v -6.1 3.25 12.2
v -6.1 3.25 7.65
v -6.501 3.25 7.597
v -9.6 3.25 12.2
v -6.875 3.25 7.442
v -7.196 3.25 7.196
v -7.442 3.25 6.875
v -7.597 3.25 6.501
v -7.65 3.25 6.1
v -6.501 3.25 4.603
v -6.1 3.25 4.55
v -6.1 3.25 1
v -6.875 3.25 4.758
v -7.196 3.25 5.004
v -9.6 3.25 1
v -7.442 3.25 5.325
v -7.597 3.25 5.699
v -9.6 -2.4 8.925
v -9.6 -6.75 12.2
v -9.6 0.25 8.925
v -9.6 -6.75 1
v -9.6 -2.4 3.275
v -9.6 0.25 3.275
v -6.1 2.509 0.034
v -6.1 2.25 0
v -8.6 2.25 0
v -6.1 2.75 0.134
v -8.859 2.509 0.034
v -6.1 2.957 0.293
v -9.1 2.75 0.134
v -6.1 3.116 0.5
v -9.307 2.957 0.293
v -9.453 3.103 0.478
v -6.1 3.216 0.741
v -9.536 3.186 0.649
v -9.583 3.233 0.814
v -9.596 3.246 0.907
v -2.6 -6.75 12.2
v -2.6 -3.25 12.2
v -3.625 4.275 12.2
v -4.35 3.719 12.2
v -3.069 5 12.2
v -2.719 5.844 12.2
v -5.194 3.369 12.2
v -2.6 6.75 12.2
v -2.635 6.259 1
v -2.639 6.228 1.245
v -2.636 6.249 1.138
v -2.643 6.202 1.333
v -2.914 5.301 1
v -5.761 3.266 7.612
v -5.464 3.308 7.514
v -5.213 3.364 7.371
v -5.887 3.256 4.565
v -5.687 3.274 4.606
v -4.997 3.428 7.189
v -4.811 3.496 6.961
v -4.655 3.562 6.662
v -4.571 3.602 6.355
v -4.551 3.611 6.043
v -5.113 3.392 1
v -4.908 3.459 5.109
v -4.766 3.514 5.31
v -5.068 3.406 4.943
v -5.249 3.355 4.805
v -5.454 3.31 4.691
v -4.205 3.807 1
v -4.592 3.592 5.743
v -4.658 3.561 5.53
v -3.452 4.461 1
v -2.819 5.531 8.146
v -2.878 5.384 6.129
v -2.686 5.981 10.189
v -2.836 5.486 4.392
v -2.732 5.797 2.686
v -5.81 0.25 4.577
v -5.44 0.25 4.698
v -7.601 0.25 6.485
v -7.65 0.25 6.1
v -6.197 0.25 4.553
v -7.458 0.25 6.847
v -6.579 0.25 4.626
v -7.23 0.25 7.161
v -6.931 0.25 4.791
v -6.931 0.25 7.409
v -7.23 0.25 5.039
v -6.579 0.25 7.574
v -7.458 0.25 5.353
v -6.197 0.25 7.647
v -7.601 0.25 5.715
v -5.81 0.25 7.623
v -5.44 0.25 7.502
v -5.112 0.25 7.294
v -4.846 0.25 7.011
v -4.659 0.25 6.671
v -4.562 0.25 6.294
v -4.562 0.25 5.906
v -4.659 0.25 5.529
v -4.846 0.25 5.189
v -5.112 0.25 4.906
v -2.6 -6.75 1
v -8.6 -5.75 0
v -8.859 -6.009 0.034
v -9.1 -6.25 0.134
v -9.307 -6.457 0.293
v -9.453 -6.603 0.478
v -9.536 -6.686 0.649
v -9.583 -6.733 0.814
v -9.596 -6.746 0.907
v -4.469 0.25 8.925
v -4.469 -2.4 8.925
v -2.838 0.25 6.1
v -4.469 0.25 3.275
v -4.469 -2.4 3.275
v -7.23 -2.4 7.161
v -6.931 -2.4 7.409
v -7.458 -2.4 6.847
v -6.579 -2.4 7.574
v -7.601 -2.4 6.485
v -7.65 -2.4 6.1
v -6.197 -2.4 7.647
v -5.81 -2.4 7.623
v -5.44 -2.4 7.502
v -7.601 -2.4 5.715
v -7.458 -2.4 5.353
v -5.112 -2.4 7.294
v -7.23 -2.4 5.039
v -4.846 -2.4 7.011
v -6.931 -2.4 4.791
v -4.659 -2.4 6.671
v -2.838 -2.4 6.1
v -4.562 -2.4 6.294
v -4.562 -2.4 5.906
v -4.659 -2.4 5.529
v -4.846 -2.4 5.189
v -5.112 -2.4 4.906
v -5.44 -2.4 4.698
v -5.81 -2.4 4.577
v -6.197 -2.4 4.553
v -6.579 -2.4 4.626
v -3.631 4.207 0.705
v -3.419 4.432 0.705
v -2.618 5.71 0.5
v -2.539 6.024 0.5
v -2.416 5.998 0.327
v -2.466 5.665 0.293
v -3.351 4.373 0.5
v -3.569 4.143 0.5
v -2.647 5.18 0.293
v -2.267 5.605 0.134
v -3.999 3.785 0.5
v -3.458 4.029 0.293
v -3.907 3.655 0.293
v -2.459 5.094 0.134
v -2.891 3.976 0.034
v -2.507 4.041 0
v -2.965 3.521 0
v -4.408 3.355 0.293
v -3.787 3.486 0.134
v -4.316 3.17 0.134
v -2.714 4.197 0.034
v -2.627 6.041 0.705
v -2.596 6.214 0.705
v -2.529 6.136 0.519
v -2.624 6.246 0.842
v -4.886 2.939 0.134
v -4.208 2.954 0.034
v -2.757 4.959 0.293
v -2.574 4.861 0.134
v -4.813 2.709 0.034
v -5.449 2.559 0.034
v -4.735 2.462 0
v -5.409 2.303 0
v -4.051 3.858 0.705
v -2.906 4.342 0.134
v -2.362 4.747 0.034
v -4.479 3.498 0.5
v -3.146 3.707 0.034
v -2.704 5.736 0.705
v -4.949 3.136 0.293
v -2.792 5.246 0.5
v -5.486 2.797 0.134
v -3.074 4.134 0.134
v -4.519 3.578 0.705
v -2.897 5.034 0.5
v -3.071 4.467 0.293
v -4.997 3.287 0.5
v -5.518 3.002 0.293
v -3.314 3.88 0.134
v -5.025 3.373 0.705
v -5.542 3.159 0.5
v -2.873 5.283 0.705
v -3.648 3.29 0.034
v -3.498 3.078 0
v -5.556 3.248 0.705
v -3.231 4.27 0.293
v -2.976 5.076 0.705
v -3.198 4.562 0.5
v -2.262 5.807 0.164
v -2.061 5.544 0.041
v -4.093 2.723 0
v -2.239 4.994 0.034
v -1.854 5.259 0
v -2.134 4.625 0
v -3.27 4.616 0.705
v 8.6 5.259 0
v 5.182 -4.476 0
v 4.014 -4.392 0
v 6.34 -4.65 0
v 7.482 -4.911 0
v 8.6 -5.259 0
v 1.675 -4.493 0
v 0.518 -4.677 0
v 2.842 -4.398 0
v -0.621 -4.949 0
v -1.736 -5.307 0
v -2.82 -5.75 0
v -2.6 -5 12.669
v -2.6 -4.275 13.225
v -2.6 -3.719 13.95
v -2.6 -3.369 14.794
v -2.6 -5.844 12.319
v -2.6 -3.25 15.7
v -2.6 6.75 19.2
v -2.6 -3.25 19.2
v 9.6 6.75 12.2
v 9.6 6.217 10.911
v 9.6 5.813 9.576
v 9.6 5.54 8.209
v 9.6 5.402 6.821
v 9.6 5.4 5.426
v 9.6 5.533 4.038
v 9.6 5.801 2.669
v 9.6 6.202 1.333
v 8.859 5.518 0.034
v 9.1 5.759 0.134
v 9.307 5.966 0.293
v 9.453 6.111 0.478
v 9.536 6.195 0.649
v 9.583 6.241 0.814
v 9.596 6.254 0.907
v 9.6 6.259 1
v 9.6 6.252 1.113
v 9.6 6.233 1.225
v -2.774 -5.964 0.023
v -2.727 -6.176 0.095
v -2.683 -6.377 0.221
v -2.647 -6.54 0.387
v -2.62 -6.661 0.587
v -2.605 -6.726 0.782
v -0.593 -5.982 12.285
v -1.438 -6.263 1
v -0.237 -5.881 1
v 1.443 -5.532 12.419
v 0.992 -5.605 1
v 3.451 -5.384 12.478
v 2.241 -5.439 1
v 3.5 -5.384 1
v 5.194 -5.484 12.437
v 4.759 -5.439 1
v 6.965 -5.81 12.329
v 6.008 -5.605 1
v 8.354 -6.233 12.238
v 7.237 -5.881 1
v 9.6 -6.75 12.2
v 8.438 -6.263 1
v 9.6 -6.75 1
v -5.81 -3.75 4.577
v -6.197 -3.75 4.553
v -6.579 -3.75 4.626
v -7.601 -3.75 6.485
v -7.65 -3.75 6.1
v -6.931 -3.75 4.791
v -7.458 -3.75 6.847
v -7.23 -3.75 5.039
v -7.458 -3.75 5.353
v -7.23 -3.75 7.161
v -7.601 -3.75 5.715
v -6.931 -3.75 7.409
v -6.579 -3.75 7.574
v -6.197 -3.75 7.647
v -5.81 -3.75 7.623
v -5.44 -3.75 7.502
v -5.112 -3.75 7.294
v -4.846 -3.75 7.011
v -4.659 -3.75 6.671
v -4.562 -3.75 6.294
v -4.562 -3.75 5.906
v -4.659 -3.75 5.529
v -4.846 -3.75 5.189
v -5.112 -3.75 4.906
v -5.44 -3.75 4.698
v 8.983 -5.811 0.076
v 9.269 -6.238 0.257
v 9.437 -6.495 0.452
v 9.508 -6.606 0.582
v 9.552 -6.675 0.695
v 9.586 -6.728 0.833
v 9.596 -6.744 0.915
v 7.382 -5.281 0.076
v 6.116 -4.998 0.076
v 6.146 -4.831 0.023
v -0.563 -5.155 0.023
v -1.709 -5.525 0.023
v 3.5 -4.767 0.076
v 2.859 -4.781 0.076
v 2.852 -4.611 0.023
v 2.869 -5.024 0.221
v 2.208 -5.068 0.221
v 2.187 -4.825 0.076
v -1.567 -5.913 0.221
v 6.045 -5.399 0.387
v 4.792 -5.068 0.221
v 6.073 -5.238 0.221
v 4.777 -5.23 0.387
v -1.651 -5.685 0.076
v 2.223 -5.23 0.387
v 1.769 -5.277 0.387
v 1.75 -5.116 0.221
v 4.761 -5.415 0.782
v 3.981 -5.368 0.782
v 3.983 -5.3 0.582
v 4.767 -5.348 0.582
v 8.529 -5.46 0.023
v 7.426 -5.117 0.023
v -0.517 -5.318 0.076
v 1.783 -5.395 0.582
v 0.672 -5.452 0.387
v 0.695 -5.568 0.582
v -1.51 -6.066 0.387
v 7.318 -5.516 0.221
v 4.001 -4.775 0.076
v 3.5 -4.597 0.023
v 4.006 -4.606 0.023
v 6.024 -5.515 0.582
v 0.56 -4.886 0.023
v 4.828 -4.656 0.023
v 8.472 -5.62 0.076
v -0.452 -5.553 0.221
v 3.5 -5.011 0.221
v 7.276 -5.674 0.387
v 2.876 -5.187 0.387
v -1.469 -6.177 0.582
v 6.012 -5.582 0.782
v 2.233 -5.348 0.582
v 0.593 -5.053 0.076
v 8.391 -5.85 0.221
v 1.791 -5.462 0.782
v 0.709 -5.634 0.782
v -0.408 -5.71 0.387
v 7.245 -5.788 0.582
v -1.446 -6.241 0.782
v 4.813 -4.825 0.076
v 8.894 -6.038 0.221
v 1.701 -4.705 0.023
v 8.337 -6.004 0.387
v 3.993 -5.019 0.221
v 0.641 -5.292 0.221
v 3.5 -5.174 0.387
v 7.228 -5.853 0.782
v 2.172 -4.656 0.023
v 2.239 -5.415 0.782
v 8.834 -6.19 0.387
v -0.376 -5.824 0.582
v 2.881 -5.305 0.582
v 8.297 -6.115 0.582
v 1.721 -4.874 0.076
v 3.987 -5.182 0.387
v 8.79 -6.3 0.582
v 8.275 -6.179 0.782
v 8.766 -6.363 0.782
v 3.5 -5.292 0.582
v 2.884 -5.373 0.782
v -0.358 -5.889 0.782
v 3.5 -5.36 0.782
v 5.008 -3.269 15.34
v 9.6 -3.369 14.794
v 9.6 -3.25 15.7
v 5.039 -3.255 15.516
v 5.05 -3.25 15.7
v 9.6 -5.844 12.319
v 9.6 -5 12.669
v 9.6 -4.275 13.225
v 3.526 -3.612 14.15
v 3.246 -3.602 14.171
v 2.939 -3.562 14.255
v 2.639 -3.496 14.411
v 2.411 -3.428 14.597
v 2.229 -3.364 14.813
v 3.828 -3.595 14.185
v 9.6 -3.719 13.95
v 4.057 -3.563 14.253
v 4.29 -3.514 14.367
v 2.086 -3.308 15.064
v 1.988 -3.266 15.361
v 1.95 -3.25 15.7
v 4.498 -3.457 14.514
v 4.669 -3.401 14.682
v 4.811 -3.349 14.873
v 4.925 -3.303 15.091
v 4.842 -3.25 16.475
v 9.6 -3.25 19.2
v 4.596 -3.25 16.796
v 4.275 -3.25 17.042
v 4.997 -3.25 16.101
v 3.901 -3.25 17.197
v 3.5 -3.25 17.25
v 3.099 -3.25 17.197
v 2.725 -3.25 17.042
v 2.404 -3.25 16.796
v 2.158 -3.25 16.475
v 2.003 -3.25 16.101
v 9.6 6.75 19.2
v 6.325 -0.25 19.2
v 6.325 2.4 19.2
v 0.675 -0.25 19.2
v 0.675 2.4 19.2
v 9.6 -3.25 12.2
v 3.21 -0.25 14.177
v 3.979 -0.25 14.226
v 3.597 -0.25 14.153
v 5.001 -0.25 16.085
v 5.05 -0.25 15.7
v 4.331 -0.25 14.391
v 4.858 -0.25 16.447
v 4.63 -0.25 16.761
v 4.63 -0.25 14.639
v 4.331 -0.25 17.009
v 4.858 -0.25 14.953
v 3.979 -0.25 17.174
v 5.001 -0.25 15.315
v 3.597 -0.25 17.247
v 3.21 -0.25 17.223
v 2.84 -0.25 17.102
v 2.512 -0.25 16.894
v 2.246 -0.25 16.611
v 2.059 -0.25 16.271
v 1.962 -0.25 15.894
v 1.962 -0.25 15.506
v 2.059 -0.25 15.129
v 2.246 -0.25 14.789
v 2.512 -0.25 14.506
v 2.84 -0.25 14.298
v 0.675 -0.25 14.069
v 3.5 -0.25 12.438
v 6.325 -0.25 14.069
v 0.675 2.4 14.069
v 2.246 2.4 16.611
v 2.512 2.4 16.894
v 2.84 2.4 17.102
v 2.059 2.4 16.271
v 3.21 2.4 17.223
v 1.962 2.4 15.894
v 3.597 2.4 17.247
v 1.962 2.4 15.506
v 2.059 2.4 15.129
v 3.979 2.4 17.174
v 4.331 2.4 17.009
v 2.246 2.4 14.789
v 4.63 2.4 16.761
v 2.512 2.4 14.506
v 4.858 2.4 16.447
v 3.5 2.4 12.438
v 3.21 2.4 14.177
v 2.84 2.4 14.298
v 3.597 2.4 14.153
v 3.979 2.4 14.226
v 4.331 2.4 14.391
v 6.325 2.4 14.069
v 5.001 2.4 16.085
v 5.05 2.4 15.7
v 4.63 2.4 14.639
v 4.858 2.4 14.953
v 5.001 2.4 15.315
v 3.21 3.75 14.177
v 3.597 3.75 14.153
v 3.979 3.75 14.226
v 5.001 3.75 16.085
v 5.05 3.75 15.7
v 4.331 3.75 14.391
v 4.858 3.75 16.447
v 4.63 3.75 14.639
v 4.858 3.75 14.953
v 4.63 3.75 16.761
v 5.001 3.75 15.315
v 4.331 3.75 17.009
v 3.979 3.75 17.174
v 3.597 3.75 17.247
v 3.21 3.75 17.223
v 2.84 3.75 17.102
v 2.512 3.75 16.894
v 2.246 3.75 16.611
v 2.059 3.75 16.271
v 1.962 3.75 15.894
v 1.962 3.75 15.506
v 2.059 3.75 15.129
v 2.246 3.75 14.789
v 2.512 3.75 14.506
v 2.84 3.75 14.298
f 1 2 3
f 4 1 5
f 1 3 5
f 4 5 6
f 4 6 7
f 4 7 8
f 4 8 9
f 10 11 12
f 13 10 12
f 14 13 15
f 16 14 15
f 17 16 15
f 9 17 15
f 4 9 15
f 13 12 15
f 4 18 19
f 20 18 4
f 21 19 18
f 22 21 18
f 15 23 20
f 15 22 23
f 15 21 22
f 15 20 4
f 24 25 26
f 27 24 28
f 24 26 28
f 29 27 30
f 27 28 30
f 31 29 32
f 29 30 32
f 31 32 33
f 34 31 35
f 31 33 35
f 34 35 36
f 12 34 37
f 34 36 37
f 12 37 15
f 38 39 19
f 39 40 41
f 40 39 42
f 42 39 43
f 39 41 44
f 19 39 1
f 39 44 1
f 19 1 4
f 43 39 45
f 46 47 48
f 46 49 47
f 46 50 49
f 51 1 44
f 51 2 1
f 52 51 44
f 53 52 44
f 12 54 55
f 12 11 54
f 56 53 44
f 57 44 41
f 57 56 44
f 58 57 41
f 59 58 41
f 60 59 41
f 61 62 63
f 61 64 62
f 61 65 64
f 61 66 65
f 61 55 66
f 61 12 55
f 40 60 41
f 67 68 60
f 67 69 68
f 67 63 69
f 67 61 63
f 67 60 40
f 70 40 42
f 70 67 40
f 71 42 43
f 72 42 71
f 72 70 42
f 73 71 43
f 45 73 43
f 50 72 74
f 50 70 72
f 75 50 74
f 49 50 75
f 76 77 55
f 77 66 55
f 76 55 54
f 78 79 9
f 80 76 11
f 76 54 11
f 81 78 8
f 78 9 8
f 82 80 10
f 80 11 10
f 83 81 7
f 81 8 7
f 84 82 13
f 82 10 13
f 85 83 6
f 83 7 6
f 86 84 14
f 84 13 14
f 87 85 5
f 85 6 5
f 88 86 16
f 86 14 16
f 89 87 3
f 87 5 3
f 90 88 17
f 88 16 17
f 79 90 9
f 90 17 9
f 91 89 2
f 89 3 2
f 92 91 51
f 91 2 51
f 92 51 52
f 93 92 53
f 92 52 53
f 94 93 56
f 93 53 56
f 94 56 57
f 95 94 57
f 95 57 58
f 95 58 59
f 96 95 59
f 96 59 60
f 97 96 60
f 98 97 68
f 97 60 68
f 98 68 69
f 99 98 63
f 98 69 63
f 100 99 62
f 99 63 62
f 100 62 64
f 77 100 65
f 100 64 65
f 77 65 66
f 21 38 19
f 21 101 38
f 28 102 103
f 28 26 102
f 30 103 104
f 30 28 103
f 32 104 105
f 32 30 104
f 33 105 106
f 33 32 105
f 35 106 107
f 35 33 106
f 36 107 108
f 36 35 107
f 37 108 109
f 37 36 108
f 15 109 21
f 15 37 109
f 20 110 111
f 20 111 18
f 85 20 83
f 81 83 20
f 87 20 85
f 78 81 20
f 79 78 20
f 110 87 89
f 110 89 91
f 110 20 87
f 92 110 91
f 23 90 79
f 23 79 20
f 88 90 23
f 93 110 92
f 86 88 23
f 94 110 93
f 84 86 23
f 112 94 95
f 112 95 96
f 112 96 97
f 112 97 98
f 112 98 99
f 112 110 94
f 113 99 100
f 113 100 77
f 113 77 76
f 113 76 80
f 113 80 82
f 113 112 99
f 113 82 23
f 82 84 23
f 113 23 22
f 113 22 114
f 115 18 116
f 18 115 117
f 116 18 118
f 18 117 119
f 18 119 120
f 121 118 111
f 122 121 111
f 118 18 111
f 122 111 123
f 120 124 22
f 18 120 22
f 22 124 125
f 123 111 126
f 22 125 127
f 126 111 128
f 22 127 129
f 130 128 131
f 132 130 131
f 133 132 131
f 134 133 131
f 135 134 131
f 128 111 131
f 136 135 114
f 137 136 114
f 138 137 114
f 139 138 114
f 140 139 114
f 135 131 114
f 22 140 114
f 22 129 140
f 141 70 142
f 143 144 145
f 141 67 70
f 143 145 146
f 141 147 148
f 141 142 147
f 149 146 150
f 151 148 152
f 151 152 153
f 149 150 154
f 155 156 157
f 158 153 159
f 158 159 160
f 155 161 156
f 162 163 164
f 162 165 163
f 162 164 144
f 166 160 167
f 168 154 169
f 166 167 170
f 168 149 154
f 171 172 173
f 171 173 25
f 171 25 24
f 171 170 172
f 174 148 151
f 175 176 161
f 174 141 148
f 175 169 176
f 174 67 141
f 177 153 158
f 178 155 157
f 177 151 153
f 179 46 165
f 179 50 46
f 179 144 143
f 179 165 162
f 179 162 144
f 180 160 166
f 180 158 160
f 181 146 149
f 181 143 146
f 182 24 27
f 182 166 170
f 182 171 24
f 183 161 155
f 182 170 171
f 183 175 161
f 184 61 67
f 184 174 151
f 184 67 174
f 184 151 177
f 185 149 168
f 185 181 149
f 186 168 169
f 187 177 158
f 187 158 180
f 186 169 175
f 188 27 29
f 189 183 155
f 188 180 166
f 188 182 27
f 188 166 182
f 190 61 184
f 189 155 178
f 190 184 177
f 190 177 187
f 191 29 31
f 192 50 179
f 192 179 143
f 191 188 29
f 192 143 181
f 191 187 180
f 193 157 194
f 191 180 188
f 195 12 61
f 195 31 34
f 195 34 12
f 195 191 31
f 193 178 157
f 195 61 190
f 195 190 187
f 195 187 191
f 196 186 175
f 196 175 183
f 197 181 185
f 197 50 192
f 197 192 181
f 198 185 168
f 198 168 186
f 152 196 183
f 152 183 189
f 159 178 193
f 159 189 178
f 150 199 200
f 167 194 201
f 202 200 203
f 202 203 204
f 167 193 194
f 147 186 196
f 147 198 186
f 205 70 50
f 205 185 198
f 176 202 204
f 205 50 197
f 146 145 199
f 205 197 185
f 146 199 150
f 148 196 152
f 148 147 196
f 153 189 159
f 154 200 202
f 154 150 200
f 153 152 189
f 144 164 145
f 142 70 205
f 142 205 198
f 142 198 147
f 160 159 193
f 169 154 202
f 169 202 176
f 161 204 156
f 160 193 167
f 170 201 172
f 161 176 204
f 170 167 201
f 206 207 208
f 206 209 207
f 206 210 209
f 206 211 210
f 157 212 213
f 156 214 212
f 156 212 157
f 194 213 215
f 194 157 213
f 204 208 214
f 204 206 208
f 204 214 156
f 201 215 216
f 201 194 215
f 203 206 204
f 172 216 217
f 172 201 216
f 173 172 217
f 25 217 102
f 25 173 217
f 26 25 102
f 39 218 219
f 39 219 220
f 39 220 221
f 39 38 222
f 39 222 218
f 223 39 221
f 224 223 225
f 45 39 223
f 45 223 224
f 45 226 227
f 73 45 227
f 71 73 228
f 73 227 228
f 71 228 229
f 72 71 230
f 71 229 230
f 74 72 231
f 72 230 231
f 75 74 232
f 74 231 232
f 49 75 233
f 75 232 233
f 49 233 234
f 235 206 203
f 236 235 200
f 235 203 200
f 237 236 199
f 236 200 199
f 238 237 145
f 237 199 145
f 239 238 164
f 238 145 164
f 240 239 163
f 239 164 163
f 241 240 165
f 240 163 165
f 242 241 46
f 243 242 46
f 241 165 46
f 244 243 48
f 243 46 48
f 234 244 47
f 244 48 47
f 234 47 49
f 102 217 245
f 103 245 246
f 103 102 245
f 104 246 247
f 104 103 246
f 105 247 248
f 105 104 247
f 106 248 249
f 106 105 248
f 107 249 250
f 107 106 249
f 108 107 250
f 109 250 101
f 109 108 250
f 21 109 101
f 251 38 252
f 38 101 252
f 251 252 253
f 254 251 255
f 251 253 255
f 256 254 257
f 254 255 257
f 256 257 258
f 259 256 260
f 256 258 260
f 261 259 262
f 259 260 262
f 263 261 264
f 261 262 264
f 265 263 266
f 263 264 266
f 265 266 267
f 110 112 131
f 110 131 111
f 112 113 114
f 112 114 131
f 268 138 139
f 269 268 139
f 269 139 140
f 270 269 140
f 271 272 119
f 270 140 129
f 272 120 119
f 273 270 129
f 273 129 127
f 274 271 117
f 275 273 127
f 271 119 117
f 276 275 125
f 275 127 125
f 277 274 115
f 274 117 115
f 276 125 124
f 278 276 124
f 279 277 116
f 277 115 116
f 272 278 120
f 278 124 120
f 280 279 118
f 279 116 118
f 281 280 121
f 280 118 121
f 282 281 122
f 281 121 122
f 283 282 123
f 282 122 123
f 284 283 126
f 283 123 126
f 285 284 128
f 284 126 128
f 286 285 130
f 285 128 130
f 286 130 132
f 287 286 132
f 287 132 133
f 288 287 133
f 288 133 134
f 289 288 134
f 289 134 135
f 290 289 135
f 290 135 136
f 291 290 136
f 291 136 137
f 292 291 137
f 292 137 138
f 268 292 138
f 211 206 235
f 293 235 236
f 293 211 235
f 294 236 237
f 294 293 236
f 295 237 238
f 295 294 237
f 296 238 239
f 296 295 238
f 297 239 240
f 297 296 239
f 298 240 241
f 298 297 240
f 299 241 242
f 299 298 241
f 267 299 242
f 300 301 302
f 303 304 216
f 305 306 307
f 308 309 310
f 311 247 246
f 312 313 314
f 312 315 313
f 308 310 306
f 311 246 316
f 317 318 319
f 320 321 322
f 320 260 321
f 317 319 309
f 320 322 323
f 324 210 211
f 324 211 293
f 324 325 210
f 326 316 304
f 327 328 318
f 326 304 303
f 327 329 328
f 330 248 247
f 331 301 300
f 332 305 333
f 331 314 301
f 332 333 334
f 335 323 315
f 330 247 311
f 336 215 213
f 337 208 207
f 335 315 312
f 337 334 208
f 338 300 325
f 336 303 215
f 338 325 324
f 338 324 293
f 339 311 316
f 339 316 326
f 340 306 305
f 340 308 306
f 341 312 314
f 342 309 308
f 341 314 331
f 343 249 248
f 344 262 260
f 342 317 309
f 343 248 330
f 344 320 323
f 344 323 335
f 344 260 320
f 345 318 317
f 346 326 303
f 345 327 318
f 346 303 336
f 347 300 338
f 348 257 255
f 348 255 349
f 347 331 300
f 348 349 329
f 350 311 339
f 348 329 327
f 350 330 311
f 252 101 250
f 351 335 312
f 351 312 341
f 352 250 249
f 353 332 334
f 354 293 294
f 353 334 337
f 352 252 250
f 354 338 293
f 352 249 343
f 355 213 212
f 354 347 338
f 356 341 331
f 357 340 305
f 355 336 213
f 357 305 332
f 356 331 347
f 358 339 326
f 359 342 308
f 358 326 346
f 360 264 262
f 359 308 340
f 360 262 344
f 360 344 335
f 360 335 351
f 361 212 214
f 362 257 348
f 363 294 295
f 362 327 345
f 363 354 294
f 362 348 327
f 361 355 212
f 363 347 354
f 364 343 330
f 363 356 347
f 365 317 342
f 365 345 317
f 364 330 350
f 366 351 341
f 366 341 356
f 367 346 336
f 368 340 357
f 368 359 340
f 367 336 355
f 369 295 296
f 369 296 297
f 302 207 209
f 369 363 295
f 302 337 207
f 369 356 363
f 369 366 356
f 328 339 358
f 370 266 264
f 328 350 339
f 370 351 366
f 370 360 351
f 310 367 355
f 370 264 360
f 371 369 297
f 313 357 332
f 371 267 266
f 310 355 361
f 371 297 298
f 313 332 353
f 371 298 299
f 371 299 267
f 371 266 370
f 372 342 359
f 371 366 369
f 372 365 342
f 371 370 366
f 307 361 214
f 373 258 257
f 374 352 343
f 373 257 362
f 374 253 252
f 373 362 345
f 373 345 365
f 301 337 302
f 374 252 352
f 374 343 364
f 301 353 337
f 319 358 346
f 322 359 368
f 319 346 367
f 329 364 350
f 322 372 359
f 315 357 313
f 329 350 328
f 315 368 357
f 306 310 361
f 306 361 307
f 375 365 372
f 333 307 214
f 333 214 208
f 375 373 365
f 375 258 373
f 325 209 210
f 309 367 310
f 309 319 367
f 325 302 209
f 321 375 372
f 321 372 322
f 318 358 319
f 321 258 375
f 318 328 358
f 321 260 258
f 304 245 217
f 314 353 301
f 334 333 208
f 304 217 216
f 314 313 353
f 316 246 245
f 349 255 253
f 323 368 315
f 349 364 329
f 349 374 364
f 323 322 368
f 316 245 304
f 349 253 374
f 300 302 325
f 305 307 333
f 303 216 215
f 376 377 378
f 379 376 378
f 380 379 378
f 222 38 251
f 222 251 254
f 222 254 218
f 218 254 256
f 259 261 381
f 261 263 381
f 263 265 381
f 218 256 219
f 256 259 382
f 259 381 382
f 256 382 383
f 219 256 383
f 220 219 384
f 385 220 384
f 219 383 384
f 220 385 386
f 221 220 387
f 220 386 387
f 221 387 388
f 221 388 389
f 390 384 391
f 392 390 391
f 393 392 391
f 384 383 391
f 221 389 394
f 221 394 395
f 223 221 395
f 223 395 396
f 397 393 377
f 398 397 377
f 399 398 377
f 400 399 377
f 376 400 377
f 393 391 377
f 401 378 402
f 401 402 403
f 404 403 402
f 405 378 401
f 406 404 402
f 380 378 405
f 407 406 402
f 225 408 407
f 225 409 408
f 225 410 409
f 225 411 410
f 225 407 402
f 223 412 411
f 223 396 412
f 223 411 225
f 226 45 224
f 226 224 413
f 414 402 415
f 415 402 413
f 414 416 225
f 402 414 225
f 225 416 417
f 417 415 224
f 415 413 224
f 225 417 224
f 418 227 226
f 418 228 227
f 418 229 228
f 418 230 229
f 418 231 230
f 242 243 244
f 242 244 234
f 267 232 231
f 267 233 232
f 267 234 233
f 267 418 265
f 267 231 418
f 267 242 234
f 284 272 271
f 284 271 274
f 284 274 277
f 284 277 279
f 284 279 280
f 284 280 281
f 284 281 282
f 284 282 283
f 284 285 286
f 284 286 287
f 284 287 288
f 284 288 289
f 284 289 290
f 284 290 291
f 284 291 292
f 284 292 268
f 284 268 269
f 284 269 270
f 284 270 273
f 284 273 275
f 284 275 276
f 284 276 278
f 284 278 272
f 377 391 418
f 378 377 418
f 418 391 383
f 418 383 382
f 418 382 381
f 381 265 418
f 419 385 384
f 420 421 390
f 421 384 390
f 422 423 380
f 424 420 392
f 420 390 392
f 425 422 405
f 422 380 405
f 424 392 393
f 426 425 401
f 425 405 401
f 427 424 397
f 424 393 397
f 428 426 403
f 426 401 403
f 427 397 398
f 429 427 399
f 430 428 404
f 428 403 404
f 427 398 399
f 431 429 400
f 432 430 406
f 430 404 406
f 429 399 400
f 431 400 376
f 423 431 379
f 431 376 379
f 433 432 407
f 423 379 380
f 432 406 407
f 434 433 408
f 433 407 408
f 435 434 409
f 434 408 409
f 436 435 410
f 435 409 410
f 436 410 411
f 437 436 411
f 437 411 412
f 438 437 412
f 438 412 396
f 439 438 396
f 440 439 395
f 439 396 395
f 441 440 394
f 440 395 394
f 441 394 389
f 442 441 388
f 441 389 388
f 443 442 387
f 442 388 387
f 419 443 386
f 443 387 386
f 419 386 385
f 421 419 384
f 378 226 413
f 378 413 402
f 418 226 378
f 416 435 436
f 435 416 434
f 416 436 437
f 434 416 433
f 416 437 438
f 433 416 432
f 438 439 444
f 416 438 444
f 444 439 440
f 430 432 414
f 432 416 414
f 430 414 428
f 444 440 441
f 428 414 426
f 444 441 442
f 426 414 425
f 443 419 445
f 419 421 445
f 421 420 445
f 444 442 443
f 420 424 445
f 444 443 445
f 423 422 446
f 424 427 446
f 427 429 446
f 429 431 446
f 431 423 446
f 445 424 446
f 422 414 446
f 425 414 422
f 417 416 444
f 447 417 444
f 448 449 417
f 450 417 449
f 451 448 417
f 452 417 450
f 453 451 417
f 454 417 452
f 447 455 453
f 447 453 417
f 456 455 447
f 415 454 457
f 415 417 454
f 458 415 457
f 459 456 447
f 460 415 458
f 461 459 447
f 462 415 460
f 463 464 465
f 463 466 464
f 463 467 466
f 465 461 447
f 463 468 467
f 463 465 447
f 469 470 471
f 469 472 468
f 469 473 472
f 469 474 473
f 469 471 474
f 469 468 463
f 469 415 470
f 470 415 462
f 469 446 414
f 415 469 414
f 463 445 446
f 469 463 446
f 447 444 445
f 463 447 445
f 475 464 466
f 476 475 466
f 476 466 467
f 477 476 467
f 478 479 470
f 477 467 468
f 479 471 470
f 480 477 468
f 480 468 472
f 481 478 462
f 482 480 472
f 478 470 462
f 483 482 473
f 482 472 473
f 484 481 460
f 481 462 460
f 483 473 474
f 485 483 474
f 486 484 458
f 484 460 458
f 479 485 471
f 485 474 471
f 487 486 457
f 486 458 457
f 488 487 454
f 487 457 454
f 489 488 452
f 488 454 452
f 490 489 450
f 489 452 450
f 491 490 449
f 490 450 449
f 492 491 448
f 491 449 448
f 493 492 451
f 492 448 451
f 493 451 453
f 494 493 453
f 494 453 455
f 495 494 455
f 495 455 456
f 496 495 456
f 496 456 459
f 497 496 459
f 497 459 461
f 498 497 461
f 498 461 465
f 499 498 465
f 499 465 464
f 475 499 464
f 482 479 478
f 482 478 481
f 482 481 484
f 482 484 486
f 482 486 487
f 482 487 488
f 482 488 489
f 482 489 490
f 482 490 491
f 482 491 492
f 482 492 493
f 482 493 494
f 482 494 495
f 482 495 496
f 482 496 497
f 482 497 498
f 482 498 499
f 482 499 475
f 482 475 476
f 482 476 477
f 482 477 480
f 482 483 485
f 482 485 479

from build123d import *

# Parameters (mm, degrees)
EXTRUDE002_DEPTH                          = 2.65
EXTRUDE002_ONTO_SKETCH008_ROLL_ANGLE      = 90
EXTRUDE001_DEPTH                          = 2.65
EXTRUDE001_ONTO_SKETCH007_ROLL_ANGLE      = 90
EXTRUDE001_ONTO_SKETCH007_PLACEMENT_ANGLE = 180
EXTRUDE_DEPTH                             = 12.2
SKETCH001_W                               = 12.2
SKETCH001_H                               = 10
PAD_DEPTH                                 = 7
PAD001_DEPTH                              = 12.2
POCKET_DEPTH                              = 19.201
POCKET001_DEPTH                           = 19.201
SKETCH005_R                               = 1.55
POCKET002_DEPTH                           = 7
SKETCH006_R                               = 1.55
POCKET003_DEPTH                           = 7
FILLET_R                                  = 1


with BuildPart() as extrude002:
    # Sketch008 as drawn → Extrude002 (new)
    with BuildSketch(Plane.XY):
        Polygon((3.5, 12.437971), (6.325, 14.068985), (6.325, 19.2), (0.675, 19.2), (0.675, 14.068985), align=None)
    extrude(amount=-EXTRUDE002_DEPTH)


with BuildPart() as extrude002_1:
    # Extrude002 onto Sketch008 roll: moved
    add(extrude002.part.rotate(Axis((0, 0, 0), (1, 0, 0)), EXTRUDE002_ONTO_SKETCH008_ROLL_ANGLE))


with BuildPart() as extrude002_2:
    # Extrude002 onto Sketch008 placement: moved
    add(extrude002_1.part.moved(Location((0, -3.25, 0))))


with BuildPart() as extrude002_3:
    # Extrude002 placement: moved
    add(extrude002_2.part.moved(Location((0, 3, 0))))


with BuildPart() as extrude001:
    # Sketch007 as drawn → Extrude001 (new)
    with BuildSketch(Plane.XY):
        Polygon((2.837971, 6.1), (4.468985, 8.925), (9.6, 8.925), (9.6, 3.275), (4.468985, 3.275), align=None)
    extrude(amount=-EXTRUDE001_DEPTH)


with BuildPart() as extrude001_1:
    # Extrude001 onto Sketch007 roll: moved
    add(extrude001.part.rotate(Axis((0, 0, 0), (1, 0, 0)), EXTRUDE001_ONTO_SKETCH007_ROLL_ANGLE))


with BuildPart() as extrude001_2:
    # Extrude001 onto Sketch007 placement: moved
    add(extrude001_1.part.moved(Location((0, 3.25, 0))).rotate(Axis((0, 3.25, 0), (0, 0, 1)), EXTRUDE001_ONTO_SKETCH007_PLACEMENT_ANGLE))


with BuildPart() as extrude001_3:
    # Extrude001 placement: moved
    add(extrude001_2.part.moved(Location((0, -3, 0))))


with BuildPart() as fillet_body:
    # Sketch → Extrude (new body)
    with BuildSketch(Plane.XY):
        with BuildLine():
            Line((-9.6, -6.75), (-9.6, 3.25))
            Line((-6.1, 3.25), (-9.6, 3.25))
            ThreePointArc((-6.1, 3.25), (-3.625126, 4.275126), (-2.6, 6.75))
            Line((-2.6, 6.75), (9.6, 6.75))
            Line((9.6, 6.75), (9.6, -6.75))
            Line((9.6, -6.75), (-9.6, -6.75))
        make_face()
    extrude(amount=EXTRUDE_DEPTH)

    # Sketch001 → Pad (new body)
    with BuildSketch(Plane.XY.offset(12.2)):
        with Locations((3.5, 1.75)):
            Rectangle(SKETCH001_W, SKETCH001_H)
    extrude(amount=PAD_DEPTH)

    # Sketch002 → Pad001 (new body)
    with BuildSketch(Plane.YZ.offset(9.6)):
        with BuildLine():
            ThreePointArc((-6.75, 12.2), (-4.275126, 13.225126), (-3.25, 15.7))
            Line((-3.25, 12.2), (-3.25, 15.7))
            Line((-6.75, 12.2), (-3.25, 12.2))
        make_face()
    extrude(amount=-PAD001_DEPTH)

    # Sketch003 → Pocket (cut, through all)
    with BuildSketch(Plane.YZ.offset(9.6)):
        with BuildLine():
            Line((6.75, 12.2), (6.75, 0))
            ThreePointArc((6.75, 12.2), (5.383677, 6.1), (6.75, 0))
        make_face()
    extrude(amount=-POCKET_DEPTH, mode=Mode.SUBTRACT)

    # Sketch004 → Pocket001 (cut, through all)
    with BuildSketch(Plane(origin=(0, 0, 0), x_dir=(1, 0, 0), z_dir=(0, 0, -1))):
        with BuildLine():
            Line((-2.6, 6.75), (9.6, 6.75))
            ThreePointArc((-2.6, 6.75), (3.5, 5.383677), (9.6, 6.75))
        make_face()
    extrude(amount=-POCKET001_DEPTH, mode=Mode.SUBTRACT)

    # Sketch005 → Pocket002 (cut, symmetric)
    with BuildSketch(Plane.XZ.offset(3.25)):
        with Locations((3.5, 15.7)):
            Circle(SKETCH005_R)
    extrude(amount=POCKET002_DEPTH, both=True, mode=Mode.SUBTRACT)

    # Sketch006 → Pocket003 (cut, symmetric)
    with BuildSketch(Plane(origin=(0, 3.25, 0), x_dir=(-1, 0, 0), z_dir=(0, 1, 0))):
        with Locations((6.1, 6.1)):
            Circle(SKETCH006_R)
    extrude(amount=POCKET003_DEPTH, both=True, mode=Mode.SUBTRACT)

    # Cut: cut Extrude001
    add(extrude001_3.part, mode=Mode.SUBTRACT)

    # Cut001: cut Extrude002
    add(extrude002_3.part, mode=Mode.SUBTRACT)

    # Fillet
    fillet_edges = [fillet_body.edges().sort_by_distance(p)[0] for p in [
        (-7.85, 3.25, 0),
        (-9.6, -1.75, 0),
        (-6.1, -6.75, 0),
        (3.5, -5.383677, 0),
        (9.6, 0, 0),
        (3.5, 6.75, 0),
        (-3.625126, 4.275126, 0),
    ]]
    fillet(fillet_edges, radius=FILLET_R)


solid = fillet_body.part
